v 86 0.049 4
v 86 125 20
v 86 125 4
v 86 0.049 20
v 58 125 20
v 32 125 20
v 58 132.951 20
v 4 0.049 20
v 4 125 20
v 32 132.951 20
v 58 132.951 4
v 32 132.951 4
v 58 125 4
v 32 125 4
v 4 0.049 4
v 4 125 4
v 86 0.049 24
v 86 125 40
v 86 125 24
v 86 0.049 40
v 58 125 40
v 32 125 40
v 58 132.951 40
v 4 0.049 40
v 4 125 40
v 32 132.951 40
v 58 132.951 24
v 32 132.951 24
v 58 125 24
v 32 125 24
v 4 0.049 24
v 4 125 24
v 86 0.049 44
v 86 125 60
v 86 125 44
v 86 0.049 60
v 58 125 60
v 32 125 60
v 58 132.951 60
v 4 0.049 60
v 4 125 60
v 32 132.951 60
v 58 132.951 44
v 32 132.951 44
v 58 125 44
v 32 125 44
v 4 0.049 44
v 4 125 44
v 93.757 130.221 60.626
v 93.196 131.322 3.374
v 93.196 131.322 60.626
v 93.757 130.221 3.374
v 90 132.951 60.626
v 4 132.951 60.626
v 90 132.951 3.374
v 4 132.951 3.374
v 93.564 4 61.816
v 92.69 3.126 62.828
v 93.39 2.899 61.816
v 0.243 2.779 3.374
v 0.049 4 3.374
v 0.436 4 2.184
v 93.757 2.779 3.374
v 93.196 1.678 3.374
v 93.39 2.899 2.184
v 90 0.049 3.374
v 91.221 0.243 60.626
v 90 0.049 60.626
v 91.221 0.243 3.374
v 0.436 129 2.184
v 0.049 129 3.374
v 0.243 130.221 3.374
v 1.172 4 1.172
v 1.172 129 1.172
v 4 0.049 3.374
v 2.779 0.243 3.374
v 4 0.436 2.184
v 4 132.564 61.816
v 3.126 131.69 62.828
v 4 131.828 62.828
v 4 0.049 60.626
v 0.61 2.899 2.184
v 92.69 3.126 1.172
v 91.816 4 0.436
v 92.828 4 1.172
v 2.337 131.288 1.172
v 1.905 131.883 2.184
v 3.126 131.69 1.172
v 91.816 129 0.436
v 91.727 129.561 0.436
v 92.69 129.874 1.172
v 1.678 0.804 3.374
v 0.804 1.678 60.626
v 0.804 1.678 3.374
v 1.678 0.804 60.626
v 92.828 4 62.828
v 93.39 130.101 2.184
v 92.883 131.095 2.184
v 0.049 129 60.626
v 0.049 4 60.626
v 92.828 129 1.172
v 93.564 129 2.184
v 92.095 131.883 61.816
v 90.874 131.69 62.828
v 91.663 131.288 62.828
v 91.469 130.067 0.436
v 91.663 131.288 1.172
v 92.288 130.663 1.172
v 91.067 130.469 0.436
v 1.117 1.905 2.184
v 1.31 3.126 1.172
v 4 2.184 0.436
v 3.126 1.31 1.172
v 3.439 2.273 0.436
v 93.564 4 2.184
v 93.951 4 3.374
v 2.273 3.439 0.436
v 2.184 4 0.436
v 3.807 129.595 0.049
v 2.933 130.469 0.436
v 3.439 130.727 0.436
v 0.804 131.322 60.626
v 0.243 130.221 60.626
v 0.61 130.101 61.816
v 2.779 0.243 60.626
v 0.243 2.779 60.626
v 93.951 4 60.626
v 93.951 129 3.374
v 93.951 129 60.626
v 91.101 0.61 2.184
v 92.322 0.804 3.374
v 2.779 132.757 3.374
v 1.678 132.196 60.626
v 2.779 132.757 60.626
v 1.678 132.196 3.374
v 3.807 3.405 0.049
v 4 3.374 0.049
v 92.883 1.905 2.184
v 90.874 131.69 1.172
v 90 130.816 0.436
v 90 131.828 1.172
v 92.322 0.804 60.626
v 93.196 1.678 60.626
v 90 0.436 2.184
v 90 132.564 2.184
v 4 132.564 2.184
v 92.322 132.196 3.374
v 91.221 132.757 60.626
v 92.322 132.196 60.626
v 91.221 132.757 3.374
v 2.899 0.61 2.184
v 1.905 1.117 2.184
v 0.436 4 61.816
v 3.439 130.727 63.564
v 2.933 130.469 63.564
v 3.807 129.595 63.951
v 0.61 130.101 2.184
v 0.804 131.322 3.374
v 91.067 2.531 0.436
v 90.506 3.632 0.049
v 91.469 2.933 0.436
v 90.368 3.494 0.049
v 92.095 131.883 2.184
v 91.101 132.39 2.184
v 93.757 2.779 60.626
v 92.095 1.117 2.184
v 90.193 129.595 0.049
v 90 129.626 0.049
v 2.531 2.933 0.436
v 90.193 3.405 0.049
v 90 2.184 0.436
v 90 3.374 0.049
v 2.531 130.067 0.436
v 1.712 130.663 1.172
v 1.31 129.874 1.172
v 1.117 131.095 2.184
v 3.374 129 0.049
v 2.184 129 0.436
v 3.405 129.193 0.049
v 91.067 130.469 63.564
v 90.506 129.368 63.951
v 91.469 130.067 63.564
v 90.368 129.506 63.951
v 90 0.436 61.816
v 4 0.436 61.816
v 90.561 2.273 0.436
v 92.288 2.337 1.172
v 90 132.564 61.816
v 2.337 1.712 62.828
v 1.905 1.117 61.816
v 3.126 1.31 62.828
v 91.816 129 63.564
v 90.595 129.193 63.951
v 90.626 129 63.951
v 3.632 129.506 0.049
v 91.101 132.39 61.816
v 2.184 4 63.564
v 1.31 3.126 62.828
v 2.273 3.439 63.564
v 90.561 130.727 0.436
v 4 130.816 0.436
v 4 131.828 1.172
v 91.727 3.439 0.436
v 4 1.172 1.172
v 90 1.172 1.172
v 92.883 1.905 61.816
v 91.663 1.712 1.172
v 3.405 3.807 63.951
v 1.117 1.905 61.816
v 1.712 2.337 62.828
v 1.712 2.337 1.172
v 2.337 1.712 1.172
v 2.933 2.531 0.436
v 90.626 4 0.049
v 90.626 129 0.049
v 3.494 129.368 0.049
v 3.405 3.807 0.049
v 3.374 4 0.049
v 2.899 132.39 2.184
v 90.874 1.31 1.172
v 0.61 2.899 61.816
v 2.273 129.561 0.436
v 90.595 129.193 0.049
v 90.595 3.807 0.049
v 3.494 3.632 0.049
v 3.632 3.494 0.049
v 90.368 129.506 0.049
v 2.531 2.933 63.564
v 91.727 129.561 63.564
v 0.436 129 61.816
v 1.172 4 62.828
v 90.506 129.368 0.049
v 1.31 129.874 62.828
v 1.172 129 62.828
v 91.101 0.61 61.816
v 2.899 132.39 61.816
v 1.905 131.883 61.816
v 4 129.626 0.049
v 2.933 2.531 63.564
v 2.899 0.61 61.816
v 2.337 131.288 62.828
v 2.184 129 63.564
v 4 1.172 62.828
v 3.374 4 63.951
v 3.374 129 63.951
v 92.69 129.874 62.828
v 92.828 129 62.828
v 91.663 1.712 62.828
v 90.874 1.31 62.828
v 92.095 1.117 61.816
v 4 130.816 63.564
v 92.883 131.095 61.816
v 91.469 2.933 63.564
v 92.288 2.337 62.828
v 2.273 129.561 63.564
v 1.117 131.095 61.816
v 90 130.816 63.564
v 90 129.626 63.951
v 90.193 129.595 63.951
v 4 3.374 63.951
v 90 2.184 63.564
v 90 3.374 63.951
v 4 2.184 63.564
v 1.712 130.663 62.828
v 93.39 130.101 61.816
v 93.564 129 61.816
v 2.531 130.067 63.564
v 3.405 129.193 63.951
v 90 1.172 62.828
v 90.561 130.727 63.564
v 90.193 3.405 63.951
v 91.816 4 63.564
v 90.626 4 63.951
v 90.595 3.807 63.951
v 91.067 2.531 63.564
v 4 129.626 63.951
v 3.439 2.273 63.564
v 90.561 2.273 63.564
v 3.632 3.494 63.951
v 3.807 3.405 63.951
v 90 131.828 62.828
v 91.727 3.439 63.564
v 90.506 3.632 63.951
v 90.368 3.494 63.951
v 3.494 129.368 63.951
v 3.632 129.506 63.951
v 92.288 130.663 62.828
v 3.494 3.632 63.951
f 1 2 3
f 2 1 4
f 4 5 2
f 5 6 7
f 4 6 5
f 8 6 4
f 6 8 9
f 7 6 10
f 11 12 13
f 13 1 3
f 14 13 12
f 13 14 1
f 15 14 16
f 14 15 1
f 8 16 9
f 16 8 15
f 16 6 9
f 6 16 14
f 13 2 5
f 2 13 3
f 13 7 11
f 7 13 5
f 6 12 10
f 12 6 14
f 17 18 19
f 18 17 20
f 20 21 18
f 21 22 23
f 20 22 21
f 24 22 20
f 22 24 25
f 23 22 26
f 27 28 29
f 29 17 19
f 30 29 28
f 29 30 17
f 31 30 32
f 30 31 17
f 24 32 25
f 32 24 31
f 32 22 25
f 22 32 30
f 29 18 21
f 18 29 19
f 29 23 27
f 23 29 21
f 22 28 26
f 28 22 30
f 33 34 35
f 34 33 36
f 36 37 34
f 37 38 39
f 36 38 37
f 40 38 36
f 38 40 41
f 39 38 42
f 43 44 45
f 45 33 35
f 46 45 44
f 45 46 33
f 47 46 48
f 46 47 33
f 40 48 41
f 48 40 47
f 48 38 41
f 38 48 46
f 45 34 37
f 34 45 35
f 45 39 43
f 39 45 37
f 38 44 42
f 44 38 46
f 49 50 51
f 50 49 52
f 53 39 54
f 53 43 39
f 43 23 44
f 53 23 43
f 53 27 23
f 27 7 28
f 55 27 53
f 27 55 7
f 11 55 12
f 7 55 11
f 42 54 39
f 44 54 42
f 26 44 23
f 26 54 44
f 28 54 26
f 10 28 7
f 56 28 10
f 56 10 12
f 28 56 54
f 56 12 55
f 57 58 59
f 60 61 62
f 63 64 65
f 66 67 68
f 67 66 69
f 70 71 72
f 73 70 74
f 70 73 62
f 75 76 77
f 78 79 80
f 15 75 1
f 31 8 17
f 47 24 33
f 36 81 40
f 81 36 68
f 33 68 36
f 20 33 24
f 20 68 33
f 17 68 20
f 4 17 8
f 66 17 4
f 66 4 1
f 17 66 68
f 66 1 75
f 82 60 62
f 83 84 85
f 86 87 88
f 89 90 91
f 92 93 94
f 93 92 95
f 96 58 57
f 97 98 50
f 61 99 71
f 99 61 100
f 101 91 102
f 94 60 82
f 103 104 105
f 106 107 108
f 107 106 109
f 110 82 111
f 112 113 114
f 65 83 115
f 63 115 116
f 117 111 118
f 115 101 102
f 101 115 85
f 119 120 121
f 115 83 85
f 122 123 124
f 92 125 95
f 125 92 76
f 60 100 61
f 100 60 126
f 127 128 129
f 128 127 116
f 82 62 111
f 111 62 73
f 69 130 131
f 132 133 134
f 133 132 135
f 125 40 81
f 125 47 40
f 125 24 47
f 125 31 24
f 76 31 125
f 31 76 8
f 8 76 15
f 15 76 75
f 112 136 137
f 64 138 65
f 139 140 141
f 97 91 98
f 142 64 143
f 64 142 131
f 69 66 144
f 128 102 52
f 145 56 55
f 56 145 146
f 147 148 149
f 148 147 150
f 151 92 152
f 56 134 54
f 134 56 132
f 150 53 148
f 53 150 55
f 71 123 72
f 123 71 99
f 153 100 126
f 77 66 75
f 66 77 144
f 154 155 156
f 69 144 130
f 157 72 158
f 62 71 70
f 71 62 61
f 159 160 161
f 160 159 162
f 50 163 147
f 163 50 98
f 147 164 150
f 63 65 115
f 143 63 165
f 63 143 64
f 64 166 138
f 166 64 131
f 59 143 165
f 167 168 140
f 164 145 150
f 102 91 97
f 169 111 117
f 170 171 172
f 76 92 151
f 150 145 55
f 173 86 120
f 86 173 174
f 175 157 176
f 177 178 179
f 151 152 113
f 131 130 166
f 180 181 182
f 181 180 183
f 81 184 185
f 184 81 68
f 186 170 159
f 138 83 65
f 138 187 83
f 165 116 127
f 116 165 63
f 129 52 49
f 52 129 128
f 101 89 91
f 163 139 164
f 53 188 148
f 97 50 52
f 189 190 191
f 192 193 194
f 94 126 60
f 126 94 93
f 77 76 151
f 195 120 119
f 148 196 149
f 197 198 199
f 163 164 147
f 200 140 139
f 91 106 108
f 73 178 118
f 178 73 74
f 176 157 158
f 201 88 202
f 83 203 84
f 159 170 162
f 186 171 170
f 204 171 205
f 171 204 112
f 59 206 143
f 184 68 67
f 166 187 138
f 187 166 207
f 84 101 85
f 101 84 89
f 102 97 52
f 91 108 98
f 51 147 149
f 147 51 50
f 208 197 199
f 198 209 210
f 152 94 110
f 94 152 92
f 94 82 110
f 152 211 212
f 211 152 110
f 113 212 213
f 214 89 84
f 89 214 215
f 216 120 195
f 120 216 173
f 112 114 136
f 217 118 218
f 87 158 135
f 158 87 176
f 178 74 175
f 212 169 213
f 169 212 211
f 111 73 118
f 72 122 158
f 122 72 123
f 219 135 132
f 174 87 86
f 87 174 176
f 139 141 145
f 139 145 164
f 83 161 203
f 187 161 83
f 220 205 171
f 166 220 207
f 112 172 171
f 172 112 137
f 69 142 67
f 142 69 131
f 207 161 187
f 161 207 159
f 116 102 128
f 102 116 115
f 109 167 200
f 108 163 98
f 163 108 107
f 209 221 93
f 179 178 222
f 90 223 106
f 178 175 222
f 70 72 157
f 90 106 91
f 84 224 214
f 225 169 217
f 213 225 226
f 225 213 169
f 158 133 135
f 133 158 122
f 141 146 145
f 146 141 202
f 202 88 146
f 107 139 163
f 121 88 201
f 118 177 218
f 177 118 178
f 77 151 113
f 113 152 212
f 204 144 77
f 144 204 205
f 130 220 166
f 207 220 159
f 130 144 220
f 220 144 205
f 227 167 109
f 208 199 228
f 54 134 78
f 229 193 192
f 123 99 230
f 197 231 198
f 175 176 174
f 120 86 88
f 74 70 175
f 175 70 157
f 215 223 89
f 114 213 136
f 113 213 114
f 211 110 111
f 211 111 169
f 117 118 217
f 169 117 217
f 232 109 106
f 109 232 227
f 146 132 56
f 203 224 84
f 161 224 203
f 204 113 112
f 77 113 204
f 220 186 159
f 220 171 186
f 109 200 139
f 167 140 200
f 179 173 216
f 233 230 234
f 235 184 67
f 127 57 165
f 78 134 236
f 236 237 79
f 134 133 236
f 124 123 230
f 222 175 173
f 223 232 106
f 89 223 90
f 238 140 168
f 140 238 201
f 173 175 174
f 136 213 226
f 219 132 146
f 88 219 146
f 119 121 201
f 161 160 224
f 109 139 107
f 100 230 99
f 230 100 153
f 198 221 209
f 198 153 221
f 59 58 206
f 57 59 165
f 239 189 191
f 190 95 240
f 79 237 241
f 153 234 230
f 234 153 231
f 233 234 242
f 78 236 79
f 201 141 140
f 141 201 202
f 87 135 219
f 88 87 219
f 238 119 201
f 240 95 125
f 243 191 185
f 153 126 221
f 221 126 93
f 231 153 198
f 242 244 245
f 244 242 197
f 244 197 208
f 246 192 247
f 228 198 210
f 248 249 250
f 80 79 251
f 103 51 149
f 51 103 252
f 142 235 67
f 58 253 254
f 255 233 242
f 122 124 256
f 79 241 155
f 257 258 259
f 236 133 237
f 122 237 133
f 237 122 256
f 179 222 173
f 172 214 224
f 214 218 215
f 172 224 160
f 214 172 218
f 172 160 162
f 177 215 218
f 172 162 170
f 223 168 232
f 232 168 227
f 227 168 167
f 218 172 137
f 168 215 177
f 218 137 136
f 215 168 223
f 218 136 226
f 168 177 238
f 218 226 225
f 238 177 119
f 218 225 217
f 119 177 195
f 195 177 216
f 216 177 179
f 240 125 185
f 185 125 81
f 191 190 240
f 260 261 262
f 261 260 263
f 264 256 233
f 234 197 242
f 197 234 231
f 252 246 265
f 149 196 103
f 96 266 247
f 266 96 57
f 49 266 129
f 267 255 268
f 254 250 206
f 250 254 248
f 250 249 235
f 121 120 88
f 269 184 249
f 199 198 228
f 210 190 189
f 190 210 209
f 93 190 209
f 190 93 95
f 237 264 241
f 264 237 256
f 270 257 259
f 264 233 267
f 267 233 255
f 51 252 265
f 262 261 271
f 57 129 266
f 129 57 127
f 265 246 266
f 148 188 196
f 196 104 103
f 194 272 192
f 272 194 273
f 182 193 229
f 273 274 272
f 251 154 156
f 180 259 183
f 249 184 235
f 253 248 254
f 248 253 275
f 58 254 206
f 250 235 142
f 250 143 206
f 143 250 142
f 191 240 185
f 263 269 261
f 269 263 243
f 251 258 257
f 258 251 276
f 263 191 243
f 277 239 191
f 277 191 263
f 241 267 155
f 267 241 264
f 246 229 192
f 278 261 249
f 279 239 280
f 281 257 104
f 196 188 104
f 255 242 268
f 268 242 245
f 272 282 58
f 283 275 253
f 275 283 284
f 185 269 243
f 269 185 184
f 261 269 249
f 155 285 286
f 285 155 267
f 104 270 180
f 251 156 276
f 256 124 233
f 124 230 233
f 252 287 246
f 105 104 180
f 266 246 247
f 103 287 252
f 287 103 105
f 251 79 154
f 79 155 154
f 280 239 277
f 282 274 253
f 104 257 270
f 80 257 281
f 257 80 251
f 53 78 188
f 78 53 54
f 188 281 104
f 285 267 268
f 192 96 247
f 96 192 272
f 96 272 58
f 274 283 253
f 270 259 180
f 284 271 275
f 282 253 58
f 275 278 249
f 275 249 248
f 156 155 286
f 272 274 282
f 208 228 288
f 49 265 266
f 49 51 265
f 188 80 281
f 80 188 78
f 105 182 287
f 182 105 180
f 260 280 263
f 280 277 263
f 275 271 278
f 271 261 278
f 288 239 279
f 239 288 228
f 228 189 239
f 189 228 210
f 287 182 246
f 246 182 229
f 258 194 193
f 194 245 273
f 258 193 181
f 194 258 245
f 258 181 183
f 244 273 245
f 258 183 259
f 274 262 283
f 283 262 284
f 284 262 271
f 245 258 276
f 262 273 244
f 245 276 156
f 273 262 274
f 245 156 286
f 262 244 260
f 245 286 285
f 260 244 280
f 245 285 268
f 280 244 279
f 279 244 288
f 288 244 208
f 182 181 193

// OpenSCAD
drive_width   =  82;
drive_length  = 125;
drive_height  =  16;
wall          =   4;
slit          =  26;
no_of_drives  =   3;
$fn = 20;

module rounded_cube(width, length, height, corner) {
    hull() {
        translate([ 0*width+1*corner, 0*length+1*corner, 0*height+1*corner])
            sphere( r = corner );

        translate([ 1*width-0*corner, 0*length+1*corner, 0*height+1*corner ])
            sphere( r = corner );

        translate([ 0*width+1*corner, 1*length-0*corner, 0*height+1*corner ])
            sphere( r = corner );

        translate([ 1*width-0*corner, 1*length-0*corner, 0*height+1*corner ])
            sphere( r = corner );

        translate([ 0*width+1*corner, 0*length+1*corner, 1*height-0*corner ])
            sphere( r = corner );

        translate([ 1*width-0*corner, 0*length+1*corner, 1*height-0*corner ])
            sphere( r = corner );

        translate([ 0*width+1*corner, 1*length-0*corner, 1*height-0*corner ])
            sphere( r = corner );

        translate([ 1*width-0*corner, 1*length-0*corner, 1*height-0*corner ])
            sphere( r = corner );
    }
}

module drive() {
    cube([drive_width, drive_length+1, drive_height]);
    
    translate([0.5*(drive_width-slit), drive_length, 0])
    cube([slit, 2*wall+2, drive_height]);

}

module case() {
    difference() {
        rounded_cube(drive_width+2*wall, drive_length+wall, no_of_drives*(drive_height+wall), wall);

        for (drive_no = [0: no_of_drives - 1]) {
            translate([
                wall,
                -1,
                (drive_no+1)*wall+drive_no*drive_height
            ])
            drive();
        }
    }
}

case();
